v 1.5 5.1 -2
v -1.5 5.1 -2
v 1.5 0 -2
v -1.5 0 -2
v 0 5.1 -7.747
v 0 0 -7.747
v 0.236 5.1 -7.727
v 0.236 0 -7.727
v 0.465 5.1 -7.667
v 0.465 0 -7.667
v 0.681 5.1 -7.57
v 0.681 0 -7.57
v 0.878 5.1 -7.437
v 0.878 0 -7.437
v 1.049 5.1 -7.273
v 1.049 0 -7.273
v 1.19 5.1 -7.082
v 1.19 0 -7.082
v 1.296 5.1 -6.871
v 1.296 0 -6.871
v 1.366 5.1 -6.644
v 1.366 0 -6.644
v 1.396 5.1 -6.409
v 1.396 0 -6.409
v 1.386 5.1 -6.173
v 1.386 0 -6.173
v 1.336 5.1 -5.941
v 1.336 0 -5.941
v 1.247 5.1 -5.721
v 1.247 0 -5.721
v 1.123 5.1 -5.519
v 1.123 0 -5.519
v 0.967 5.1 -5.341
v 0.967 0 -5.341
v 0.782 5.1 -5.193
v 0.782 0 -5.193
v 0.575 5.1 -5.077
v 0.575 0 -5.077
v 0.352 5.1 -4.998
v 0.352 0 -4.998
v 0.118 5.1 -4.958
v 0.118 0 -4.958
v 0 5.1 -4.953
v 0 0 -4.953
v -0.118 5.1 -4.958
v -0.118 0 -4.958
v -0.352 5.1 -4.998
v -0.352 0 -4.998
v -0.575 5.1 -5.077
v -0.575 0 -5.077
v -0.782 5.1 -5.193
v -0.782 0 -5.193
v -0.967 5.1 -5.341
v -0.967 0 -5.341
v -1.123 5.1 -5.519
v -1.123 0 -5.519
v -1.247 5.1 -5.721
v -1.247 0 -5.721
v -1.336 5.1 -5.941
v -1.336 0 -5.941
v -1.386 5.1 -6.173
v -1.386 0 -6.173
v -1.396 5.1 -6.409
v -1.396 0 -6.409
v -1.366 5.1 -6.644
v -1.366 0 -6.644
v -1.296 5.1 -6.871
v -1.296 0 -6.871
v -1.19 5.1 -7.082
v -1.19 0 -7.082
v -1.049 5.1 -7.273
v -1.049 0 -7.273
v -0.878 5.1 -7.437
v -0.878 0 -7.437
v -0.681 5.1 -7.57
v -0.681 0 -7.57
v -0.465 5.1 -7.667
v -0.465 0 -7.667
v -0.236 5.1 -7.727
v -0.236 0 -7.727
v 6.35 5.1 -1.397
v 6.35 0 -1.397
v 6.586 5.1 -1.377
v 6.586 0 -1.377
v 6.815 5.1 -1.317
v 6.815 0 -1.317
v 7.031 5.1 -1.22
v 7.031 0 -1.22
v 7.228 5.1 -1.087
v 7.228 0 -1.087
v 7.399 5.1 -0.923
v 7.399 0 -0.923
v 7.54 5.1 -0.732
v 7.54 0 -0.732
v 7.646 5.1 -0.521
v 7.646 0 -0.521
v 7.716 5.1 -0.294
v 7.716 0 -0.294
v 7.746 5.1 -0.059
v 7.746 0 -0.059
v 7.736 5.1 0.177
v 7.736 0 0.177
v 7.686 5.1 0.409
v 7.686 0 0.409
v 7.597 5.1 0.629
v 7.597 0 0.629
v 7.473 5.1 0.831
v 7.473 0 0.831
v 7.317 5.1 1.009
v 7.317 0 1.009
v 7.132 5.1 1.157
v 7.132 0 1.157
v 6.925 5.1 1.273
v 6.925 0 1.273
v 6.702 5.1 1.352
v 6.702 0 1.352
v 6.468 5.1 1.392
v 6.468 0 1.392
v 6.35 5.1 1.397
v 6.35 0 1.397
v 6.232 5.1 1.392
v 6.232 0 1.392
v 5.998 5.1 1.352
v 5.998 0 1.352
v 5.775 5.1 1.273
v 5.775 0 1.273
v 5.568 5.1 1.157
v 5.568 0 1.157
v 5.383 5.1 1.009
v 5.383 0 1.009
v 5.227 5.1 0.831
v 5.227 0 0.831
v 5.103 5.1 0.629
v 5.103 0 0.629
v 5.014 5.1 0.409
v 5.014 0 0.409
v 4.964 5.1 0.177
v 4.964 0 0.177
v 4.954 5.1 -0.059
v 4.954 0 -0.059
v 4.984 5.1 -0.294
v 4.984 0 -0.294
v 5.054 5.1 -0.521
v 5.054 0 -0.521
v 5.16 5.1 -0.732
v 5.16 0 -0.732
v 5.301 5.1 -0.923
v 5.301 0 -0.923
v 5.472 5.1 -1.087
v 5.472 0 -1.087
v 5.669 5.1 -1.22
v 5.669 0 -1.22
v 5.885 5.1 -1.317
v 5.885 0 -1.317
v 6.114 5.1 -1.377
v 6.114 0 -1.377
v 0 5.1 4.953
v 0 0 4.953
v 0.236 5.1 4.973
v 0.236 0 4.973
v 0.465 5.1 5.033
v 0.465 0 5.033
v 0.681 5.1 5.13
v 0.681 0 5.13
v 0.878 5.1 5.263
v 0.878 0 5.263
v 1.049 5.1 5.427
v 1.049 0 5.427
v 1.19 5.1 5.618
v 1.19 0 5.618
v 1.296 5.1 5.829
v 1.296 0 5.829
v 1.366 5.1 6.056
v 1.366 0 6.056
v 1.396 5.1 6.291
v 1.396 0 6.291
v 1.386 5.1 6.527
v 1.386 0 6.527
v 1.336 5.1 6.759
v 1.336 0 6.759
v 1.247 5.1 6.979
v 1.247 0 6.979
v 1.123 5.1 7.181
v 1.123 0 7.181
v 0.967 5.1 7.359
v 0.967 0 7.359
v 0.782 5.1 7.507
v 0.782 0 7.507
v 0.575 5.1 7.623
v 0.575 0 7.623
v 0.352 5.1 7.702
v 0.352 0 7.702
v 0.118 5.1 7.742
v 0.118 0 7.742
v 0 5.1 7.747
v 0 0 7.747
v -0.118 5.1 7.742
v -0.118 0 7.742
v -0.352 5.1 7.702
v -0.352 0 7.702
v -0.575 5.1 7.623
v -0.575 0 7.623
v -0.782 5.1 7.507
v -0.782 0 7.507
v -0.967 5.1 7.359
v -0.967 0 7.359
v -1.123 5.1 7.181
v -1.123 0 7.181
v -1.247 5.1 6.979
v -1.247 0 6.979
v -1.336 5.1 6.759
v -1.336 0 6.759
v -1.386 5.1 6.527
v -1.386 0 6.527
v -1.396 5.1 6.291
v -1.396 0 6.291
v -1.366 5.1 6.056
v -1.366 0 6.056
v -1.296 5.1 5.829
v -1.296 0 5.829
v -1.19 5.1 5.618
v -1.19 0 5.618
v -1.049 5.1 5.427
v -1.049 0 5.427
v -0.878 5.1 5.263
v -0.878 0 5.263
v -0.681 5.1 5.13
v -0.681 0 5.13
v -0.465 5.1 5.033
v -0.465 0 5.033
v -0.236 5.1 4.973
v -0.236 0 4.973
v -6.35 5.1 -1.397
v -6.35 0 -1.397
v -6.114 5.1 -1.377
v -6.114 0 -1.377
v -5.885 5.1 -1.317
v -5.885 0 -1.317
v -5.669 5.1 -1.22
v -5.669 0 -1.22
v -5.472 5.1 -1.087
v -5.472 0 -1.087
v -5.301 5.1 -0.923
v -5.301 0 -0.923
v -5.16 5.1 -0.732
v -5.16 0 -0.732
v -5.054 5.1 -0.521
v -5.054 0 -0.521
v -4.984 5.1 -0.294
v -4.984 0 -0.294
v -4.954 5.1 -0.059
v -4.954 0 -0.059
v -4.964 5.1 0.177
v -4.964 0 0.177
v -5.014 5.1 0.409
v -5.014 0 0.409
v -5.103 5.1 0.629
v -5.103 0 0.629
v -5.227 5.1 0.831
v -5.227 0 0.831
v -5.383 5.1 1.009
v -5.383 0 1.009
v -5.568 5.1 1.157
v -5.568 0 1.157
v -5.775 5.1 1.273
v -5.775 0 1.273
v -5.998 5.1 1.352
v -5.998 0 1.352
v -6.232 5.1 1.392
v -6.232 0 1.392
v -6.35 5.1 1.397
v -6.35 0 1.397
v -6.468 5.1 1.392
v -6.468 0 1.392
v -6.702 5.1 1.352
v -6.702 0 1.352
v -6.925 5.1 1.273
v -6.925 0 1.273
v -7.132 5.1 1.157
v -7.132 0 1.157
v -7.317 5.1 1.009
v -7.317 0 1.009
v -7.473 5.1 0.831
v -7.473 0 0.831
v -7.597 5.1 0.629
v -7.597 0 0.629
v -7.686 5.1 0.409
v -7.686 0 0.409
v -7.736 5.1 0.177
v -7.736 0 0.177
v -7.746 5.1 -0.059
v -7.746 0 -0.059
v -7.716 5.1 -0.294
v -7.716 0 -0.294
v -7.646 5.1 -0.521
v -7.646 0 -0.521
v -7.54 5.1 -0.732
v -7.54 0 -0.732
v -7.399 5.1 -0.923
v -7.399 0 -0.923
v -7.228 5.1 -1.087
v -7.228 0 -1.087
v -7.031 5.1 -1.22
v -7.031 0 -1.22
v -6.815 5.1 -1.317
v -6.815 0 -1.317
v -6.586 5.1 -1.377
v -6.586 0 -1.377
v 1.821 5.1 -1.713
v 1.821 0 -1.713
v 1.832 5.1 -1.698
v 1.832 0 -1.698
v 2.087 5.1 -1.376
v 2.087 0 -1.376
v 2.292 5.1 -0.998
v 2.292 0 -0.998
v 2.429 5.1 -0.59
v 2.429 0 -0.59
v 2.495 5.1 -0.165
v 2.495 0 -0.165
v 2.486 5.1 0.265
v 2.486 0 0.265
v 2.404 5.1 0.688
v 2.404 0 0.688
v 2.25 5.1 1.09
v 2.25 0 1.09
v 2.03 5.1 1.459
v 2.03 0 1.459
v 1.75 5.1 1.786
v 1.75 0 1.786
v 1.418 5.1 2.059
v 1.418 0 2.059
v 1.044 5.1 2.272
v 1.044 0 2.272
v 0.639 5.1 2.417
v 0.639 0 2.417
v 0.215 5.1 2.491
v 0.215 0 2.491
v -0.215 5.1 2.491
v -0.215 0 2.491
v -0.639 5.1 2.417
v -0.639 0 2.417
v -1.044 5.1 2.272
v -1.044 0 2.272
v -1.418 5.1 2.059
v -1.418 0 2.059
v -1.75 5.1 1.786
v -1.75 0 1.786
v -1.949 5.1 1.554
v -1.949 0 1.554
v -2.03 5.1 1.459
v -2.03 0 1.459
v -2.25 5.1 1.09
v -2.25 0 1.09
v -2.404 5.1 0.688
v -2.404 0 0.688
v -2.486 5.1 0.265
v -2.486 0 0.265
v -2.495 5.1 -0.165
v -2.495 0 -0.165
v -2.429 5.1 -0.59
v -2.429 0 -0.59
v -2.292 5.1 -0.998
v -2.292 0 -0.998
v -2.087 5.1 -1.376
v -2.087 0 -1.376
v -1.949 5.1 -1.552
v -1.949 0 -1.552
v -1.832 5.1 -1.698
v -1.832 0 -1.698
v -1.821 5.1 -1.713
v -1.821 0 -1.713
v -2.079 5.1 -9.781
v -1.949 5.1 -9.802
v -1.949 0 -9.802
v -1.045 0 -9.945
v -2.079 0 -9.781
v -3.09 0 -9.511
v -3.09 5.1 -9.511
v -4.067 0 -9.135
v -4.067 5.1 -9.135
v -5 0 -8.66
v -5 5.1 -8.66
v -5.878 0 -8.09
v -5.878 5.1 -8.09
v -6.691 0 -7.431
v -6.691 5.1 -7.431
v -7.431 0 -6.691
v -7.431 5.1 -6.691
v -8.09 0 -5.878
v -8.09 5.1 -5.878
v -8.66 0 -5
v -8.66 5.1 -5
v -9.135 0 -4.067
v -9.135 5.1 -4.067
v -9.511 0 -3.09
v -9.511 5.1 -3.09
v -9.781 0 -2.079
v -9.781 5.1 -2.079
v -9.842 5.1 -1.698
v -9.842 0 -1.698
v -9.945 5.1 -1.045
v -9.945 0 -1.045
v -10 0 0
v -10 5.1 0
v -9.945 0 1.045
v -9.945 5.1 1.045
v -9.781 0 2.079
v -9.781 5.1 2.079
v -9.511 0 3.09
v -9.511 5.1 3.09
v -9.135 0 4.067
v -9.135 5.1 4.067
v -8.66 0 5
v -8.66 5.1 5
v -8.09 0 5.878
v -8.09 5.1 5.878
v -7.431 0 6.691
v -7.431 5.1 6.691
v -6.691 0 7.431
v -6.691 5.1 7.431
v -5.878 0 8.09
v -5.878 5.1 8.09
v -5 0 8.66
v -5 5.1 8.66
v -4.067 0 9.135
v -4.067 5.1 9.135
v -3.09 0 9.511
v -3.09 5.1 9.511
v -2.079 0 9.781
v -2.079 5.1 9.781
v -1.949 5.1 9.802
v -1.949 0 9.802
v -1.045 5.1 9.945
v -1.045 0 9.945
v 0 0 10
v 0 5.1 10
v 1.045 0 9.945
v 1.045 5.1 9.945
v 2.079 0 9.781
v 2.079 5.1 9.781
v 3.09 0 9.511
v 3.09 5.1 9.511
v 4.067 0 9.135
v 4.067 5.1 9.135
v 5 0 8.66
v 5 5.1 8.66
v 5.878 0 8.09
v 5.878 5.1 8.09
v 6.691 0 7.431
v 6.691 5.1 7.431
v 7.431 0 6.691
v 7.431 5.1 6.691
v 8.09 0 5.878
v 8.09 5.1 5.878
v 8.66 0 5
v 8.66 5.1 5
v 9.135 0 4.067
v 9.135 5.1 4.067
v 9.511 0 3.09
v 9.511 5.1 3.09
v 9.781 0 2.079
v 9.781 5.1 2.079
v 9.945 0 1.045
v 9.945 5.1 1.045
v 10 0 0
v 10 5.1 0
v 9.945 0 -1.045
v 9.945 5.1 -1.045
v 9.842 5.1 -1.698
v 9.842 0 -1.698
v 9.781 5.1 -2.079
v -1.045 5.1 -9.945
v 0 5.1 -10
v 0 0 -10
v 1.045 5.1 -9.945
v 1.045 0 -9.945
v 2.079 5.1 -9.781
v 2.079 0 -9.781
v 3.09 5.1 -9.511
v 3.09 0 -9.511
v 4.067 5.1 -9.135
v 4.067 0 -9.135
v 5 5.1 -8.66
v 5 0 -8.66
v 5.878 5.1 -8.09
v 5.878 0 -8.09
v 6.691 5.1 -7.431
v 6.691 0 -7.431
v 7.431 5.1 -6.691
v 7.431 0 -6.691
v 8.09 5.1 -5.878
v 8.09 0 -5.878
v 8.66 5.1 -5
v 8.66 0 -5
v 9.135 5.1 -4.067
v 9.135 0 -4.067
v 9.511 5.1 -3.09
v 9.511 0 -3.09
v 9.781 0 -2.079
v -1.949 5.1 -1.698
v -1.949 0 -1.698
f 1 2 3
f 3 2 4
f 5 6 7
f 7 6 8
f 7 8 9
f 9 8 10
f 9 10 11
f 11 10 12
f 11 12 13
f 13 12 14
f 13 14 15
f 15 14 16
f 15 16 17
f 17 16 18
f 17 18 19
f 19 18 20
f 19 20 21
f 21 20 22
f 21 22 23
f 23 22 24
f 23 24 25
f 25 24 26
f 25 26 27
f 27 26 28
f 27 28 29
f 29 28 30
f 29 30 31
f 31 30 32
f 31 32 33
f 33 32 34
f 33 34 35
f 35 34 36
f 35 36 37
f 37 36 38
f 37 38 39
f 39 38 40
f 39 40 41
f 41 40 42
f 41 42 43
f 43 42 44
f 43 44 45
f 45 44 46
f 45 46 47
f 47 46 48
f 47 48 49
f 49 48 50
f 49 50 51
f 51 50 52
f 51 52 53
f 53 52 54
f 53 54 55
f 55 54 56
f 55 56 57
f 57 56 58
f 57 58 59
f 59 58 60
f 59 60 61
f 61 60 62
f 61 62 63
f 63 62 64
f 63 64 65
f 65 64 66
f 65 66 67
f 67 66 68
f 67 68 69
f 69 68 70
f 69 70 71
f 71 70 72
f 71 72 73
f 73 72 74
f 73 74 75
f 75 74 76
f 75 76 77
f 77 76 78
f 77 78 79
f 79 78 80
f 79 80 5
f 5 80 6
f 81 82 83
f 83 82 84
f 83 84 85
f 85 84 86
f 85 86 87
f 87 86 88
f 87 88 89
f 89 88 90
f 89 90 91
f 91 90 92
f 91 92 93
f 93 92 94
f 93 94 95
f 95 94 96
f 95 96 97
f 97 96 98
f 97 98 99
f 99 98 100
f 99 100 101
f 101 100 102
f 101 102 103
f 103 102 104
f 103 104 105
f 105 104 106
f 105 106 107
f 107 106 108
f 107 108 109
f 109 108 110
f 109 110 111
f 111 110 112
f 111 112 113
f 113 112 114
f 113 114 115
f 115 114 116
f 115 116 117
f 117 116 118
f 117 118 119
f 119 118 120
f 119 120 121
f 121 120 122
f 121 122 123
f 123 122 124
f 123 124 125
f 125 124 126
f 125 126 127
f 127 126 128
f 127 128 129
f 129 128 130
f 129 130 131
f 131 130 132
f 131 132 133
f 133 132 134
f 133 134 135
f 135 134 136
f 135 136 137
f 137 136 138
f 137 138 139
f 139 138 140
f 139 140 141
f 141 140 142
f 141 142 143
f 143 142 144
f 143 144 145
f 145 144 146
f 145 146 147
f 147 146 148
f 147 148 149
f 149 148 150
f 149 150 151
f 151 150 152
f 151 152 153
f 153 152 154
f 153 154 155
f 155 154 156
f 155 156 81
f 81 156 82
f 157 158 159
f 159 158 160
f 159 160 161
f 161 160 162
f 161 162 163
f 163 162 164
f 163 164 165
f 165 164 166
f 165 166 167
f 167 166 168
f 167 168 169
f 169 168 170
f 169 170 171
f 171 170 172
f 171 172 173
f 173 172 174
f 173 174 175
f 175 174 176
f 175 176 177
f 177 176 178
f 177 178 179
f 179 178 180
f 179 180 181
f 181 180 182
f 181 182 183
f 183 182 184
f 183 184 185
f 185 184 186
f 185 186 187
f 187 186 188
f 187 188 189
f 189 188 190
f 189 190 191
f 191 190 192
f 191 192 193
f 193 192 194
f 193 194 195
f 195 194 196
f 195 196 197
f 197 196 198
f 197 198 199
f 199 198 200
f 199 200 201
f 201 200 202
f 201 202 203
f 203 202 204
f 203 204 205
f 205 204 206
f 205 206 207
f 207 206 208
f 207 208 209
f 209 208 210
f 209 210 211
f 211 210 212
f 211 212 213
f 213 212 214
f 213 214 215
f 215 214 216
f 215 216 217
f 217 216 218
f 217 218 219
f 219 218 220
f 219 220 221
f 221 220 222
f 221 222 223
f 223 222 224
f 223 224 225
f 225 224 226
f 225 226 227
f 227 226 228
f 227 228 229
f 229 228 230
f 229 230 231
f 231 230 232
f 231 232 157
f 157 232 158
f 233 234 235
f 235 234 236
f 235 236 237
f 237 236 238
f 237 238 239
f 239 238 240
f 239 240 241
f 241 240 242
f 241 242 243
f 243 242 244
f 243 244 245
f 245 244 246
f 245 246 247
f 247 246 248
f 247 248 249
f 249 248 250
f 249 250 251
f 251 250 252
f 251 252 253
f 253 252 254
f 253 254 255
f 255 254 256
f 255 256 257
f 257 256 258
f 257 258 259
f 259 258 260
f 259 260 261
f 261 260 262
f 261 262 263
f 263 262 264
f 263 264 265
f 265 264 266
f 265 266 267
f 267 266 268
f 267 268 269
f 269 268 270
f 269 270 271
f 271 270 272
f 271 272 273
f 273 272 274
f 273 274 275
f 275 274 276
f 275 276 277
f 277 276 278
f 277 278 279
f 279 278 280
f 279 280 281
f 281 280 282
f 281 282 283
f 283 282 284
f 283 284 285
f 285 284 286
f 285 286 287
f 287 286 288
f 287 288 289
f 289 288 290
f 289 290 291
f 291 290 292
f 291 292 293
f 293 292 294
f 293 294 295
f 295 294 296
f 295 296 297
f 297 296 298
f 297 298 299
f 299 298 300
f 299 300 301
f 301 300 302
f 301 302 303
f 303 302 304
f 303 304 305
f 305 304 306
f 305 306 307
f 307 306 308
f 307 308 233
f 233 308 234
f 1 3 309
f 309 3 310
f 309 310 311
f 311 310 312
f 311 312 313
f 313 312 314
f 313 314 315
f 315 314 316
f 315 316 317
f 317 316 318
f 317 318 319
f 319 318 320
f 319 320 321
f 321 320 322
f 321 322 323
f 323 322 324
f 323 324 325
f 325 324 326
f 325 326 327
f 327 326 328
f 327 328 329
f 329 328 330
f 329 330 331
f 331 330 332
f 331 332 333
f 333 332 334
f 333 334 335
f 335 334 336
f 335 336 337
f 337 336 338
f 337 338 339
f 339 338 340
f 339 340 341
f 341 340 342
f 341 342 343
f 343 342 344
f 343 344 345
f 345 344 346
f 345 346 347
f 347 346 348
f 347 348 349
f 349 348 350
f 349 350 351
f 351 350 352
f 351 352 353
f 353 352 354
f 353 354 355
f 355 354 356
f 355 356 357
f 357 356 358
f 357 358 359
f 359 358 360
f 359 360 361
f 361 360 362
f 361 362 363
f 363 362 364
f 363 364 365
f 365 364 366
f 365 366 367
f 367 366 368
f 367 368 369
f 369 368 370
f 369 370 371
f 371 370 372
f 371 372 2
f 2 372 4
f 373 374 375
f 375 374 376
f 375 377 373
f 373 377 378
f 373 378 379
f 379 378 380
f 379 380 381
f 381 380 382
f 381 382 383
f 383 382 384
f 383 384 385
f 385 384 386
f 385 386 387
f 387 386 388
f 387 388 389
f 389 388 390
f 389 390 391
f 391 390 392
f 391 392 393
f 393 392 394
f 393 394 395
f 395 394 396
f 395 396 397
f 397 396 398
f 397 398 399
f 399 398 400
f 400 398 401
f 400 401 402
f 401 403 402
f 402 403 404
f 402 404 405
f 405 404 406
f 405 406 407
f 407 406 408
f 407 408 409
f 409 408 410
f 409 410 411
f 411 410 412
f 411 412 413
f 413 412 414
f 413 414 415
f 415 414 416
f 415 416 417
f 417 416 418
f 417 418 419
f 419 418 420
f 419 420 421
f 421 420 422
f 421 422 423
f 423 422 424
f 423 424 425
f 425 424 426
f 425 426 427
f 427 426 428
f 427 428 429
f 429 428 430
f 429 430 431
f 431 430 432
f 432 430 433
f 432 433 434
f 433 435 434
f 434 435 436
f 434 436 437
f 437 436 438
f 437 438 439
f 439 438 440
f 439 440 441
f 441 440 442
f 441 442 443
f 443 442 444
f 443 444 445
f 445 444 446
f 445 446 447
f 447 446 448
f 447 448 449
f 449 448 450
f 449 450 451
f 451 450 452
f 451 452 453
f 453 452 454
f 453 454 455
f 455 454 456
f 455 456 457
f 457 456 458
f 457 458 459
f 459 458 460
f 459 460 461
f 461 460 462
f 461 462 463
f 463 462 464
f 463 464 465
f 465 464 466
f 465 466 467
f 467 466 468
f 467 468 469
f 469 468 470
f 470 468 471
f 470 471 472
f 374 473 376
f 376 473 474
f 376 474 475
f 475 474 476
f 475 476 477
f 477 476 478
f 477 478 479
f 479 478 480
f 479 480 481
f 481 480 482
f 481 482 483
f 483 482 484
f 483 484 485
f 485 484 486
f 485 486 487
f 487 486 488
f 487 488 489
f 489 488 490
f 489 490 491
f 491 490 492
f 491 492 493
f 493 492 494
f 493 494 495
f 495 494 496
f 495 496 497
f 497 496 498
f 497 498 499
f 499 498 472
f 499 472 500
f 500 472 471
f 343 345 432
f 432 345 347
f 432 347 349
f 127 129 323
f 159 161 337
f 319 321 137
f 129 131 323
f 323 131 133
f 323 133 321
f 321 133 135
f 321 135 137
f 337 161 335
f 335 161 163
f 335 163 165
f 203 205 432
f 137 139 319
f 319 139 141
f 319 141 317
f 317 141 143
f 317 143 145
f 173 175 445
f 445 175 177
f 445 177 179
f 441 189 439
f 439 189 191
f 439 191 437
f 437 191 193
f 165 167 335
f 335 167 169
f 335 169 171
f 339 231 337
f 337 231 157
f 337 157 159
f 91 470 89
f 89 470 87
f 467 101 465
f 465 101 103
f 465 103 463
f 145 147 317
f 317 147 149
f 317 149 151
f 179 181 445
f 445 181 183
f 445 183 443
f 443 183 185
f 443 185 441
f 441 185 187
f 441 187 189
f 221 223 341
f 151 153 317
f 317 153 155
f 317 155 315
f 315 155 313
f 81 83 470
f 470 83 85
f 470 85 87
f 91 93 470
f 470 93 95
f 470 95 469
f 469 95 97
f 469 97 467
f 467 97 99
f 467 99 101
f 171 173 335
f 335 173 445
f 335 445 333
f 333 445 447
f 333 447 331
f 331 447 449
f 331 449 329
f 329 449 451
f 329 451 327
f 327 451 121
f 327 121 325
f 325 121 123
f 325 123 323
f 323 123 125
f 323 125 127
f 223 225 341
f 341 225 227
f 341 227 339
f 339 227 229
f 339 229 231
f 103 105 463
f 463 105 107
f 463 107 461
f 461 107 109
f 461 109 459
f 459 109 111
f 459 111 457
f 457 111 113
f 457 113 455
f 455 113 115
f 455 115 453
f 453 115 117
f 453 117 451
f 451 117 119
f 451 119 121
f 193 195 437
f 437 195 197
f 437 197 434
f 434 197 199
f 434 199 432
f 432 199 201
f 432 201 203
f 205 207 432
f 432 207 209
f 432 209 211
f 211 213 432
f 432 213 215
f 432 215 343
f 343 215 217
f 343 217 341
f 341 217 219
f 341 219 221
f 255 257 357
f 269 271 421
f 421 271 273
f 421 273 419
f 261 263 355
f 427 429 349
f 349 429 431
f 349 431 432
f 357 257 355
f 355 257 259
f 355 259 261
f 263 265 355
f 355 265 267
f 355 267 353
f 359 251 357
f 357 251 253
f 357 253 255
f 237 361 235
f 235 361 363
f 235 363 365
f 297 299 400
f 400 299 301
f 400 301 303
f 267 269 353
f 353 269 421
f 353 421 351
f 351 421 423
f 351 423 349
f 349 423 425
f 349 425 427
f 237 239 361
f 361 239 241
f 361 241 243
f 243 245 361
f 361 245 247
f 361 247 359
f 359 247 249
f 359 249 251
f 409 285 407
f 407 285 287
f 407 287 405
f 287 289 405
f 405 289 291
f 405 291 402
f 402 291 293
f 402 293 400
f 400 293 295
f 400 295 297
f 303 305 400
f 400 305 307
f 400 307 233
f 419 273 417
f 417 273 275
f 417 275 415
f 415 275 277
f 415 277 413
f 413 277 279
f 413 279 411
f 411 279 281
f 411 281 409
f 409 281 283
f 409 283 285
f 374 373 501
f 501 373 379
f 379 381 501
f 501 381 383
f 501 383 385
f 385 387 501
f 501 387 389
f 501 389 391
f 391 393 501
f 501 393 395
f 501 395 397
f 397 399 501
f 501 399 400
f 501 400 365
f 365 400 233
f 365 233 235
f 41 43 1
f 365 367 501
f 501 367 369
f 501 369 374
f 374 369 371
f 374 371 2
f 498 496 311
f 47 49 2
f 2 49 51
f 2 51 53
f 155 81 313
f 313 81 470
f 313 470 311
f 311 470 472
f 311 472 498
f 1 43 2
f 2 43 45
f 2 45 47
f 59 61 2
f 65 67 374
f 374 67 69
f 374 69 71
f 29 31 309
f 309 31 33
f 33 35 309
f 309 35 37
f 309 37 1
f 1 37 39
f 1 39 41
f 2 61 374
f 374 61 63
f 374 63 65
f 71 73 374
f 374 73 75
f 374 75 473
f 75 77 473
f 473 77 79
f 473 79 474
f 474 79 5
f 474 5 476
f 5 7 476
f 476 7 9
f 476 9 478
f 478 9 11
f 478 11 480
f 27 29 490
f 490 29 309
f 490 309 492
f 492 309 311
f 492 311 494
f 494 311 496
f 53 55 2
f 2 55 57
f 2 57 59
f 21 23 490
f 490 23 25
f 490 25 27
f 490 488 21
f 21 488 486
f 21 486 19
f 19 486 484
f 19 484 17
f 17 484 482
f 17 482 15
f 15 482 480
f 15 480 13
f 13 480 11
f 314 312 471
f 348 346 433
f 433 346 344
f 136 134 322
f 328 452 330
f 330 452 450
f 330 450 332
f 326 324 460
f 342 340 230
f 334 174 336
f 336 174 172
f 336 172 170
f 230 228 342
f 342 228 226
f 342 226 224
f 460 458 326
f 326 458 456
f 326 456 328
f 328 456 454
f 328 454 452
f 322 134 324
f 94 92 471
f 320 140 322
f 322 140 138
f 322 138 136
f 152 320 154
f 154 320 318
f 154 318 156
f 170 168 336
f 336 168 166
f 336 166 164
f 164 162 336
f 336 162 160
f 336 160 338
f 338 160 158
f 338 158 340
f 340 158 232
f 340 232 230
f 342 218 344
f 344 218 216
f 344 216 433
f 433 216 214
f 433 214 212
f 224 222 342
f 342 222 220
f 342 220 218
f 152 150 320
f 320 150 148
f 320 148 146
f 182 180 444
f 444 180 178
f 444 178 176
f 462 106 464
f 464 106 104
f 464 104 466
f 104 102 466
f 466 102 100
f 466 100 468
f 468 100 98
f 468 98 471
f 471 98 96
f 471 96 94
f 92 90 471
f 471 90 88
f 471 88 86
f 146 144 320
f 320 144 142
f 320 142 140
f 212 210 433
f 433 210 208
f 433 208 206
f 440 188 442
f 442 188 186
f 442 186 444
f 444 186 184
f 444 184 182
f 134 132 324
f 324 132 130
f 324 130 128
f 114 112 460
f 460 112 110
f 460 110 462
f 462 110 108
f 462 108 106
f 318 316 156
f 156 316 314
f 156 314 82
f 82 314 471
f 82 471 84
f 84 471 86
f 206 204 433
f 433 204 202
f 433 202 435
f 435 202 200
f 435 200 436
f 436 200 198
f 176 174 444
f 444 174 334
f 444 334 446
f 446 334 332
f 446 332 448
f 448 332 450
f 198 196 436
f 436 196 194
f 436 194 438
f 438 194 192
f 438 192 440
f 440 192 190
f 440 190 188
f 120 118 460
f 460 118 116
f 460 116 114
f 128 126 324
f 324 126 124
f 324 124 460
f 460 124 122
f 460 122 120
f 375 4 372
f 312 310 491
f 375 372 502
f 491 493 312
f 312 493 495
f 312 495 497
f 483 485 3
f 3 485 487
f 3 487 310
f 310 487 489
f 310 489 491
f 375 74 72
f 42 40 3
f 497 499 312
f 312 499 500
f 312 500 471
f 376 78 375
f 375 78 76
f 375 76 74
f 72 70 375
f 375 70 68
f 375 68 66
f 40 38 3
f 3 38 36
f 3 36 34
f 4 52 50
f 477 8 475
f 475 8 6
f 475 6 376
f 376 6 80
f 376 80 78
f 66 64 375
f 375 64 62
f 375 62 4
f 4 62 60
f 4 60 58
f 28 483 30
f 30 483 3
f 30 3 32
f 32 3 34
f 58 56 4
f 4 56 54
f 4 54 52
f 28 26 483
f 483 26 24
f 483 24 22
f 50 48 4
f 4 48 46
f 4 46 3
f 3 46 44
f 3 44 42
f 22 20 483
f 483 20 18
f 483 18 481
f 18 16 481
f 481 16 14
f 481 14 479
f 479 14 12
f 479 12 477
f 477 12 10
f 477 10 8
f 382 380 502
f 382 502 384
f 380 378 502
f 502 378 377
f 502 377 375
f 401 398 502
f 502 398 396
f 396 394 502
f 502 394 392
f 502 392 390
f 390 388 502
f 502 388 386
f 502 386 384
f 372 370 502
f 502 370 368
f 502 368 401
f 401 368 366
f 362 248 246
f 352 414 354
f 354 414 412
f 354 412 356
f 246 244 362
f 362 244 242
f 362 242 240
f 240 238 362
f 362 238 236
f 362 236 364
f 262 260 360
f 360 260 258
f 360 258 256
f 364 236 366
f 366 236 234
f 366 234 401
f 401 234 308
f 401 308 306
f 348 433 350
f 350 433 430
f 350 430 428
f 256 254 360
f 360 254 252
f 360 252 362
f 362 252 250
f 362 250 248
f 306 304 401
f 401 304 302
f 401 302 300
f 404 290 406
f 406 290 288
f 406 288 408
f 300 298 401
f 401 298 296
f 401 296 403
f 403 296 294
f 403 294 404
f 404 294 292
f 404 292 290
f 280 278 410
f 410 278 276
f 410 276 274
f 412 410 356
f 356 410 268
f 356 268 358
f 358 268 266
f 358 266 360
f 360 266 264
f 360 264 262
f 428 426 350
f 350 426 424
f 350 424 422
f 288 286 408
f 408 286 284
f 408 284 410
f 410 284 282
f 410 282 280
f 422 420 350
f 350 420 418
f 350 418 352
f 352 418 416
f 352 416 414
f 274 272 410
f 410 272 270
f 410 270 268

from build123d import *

# Parameters (mm, degrees)
SKETCH1_R           = 10
SKETCH1_R_2         = 1.397
BOSS_EXTRUDE2_DEPTH = 5.1


with BuildPart() as part:
    # Sketch1 → Boss-Extrude2 (new body)
    with BuildSketch(Plane(origin=(0, 0, 0), x_dir=(1, 0, 0), z_dir=(0, 1, 0))):
        with Locations(Location((0, 0, 0), (0, 0, 270))):
            Circle(SKETCH1_R)
        with BuildLine():
            Line((-1.5, 2), (1.5, 2))
            ThreePointArc((1.5, 2), (0, -2.5), (-1.5, 2))
        make_face(mode=Mode.SUBTRACT)
        with Locations(Location((-6.35, 0, 0), (0, 0, 270))):
            Circle(SKETCH1_R_2, mode=Mode.SUBTRACT)
        with Locations(Location((0, -6.35, 0), (0, 0, 270))):
            Circle(SKETCH1_R_2, mode=Mode.SUBTRACT)
        with Locations(Location((0, 6.35, 0), (0, 0, 270))):
            Circle(SKETCH1_R_2, mode=Mode.SUBTRACT)
        with Locations(Location((6.35, 0, 0), (0, 0, 270))):
            Circle(SKETCH1_R_2, mode=Mode.SUBTRACT)
    extrude(amount=BOSS_EXTRUDE2_DEPTH)


solid = part.part
